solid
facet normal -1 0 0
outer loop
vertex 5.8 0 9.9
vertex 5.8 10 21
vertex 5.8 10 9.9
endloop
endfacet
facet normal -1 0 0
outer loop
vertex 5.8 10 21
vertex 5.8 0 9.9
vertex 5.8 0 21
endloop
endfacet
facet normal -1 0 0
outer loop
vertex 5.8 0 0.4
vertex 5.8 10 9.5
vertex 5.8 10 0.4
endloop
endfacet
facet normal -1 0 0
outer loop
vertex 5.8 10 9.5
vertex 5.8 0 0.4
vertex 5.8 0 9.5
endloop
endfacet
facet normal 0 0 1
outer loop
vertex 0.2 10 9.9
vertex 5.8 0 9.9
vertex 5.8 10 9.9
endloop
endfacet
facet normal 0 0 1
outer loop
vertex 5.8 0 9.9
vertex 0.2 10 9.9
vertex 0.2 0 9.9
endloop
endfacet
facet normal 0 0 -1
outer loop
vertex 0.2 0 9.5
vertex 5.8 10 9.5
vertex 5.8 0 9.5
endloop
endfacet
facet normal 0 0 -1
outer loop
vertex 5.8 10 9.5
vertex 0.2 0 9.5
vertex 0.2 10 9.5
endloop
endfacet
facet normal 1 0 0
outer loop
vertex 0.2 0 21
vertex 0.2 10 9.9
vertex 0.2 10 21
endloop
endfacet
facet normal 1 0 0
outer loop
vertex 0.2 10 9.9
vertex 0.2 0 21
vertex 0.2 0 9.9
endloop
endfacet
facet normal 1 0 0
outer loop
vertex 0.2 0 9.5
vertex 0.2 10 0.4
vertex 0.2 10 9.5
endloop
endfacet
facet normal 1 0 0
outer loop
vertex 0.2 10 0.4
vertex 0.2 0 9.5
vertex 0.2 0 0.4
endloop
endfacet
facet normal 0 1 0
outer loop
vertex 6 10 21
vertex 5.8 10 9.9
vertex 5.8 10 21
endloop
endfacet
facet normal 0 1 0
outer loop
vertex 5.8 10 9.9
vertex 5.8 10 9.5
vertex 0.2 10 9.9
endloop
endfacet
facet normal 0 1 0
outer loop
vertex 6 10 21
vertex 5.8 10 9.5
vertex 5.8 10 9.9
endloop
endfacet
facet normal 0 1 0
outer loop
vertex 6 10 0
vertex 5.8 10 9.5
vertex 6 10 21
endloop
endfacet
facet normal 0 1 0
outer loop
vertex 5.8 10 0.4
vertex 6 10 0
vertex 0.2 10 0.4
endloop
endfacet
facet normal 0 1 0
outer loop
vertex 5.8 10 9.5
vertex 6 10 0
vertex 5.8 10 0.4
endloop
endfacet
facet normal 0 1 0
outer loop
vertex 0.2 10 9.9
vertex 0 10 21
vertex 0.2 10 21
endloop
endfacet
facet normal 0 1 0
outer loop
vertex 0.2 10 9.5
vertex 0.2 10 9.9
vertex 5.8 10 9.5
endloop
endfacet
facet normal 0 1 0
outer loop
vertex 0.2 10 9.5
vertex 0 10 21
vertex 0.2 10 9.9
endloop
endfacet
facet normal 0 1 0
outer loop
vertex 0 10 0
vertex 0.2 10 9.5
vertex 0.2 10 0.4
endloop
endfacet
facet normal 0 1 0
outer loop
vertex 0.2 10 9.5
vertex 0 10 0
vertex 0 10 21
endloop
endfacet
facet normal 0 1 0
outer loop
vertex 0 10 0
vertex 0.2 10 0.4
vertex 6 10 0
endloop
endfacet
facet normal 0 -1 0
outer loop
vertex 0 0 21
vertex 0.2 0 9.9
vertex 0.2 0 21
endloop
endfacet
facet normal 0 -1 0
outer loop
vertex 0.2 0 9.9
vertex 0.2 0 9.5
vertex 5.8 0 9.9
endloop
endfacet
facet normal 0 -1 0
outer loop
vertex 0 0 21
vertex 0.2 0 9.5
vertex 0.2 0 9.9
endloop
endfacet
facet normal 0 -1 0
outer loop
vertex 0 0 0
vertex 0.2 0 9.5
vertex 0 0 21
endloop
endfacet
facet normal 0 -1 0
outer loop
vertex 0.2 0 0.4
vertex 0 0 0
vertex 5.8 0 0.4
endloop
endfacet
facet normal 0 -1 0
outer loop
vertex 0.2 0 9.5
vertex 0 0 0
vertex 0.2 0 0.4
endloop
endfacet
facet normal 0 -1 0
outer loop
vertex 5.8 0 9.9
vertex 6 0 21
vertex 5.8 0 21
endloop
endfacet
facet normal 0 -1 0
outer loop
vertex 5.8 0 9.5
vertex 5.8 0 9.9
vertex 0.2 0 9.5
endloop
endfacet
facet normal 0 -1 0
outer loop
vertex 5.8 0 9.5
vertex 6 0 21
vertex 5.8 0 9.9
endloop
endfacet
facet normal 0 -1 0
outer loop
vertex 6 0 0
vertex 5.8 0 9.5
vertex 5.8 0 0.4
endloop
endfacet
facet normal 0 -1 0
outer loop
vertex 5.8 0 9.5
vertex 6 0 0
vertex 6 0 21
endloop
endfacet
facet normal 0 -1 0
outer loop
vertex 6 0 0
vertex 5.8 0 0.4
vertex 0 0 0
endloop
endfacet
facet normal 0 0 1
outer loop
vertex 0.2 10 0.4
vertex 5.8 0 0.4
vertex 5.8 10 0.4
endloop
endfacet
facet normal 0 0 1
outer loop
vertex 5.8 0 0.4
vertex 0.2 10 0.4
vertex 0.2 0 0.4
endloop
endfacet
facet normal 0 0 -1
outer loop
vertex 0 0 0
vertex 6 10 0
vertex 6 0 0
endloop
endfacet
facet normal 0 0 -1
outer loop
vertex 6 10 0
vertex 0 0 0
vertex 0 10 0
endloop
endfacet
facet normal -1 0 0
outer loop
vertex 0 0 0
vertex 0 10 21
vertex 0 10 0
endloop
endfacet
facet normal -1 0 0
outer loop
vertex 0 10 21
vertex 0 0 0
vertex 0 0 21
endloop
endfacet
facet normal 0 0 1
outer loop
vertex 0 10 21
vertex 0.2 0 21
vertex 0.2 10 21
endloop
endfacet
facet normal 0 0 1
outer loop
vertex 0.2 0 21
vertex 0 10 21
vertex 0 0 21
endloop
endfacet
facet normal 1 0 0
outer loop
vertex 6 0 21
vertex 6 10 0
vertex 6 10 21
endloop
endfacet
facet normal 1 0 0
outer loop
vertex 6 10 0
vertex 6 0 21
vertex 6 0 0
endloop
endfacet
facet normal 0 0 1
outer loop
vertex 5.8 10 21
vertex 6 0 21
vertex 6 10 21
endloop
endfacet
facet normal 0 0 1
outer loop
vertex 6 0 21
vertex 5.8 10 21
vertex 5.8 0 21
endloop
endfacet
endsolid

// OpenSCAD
h_top = 11.5;
h_bottom = 9.5;
n_blocks = 13;
depth = 10;
//                Top of of the cathedral
// <----------------------------------------------------


floor_thickness = 4;
cathedral_width = 5.6;

//                Height of the Red Book

wall_thickness = 0.2;
translate([wall_thickness,0, h_bottom]) cube([cathedral_width,depth,.4]);
cube([wall_thickness + cathedral_width,depth,.4]);

// <---------------------------------------------------




cm_per_block = h_bottom/n_blocks;
cube([wall_thickness, 10, h_bottom+h_top]);
translate([cathedral_width + wall_thickness ,0,0])
  cube([wall_thickness, 10, h_bottom+h_top]);
// ==========
